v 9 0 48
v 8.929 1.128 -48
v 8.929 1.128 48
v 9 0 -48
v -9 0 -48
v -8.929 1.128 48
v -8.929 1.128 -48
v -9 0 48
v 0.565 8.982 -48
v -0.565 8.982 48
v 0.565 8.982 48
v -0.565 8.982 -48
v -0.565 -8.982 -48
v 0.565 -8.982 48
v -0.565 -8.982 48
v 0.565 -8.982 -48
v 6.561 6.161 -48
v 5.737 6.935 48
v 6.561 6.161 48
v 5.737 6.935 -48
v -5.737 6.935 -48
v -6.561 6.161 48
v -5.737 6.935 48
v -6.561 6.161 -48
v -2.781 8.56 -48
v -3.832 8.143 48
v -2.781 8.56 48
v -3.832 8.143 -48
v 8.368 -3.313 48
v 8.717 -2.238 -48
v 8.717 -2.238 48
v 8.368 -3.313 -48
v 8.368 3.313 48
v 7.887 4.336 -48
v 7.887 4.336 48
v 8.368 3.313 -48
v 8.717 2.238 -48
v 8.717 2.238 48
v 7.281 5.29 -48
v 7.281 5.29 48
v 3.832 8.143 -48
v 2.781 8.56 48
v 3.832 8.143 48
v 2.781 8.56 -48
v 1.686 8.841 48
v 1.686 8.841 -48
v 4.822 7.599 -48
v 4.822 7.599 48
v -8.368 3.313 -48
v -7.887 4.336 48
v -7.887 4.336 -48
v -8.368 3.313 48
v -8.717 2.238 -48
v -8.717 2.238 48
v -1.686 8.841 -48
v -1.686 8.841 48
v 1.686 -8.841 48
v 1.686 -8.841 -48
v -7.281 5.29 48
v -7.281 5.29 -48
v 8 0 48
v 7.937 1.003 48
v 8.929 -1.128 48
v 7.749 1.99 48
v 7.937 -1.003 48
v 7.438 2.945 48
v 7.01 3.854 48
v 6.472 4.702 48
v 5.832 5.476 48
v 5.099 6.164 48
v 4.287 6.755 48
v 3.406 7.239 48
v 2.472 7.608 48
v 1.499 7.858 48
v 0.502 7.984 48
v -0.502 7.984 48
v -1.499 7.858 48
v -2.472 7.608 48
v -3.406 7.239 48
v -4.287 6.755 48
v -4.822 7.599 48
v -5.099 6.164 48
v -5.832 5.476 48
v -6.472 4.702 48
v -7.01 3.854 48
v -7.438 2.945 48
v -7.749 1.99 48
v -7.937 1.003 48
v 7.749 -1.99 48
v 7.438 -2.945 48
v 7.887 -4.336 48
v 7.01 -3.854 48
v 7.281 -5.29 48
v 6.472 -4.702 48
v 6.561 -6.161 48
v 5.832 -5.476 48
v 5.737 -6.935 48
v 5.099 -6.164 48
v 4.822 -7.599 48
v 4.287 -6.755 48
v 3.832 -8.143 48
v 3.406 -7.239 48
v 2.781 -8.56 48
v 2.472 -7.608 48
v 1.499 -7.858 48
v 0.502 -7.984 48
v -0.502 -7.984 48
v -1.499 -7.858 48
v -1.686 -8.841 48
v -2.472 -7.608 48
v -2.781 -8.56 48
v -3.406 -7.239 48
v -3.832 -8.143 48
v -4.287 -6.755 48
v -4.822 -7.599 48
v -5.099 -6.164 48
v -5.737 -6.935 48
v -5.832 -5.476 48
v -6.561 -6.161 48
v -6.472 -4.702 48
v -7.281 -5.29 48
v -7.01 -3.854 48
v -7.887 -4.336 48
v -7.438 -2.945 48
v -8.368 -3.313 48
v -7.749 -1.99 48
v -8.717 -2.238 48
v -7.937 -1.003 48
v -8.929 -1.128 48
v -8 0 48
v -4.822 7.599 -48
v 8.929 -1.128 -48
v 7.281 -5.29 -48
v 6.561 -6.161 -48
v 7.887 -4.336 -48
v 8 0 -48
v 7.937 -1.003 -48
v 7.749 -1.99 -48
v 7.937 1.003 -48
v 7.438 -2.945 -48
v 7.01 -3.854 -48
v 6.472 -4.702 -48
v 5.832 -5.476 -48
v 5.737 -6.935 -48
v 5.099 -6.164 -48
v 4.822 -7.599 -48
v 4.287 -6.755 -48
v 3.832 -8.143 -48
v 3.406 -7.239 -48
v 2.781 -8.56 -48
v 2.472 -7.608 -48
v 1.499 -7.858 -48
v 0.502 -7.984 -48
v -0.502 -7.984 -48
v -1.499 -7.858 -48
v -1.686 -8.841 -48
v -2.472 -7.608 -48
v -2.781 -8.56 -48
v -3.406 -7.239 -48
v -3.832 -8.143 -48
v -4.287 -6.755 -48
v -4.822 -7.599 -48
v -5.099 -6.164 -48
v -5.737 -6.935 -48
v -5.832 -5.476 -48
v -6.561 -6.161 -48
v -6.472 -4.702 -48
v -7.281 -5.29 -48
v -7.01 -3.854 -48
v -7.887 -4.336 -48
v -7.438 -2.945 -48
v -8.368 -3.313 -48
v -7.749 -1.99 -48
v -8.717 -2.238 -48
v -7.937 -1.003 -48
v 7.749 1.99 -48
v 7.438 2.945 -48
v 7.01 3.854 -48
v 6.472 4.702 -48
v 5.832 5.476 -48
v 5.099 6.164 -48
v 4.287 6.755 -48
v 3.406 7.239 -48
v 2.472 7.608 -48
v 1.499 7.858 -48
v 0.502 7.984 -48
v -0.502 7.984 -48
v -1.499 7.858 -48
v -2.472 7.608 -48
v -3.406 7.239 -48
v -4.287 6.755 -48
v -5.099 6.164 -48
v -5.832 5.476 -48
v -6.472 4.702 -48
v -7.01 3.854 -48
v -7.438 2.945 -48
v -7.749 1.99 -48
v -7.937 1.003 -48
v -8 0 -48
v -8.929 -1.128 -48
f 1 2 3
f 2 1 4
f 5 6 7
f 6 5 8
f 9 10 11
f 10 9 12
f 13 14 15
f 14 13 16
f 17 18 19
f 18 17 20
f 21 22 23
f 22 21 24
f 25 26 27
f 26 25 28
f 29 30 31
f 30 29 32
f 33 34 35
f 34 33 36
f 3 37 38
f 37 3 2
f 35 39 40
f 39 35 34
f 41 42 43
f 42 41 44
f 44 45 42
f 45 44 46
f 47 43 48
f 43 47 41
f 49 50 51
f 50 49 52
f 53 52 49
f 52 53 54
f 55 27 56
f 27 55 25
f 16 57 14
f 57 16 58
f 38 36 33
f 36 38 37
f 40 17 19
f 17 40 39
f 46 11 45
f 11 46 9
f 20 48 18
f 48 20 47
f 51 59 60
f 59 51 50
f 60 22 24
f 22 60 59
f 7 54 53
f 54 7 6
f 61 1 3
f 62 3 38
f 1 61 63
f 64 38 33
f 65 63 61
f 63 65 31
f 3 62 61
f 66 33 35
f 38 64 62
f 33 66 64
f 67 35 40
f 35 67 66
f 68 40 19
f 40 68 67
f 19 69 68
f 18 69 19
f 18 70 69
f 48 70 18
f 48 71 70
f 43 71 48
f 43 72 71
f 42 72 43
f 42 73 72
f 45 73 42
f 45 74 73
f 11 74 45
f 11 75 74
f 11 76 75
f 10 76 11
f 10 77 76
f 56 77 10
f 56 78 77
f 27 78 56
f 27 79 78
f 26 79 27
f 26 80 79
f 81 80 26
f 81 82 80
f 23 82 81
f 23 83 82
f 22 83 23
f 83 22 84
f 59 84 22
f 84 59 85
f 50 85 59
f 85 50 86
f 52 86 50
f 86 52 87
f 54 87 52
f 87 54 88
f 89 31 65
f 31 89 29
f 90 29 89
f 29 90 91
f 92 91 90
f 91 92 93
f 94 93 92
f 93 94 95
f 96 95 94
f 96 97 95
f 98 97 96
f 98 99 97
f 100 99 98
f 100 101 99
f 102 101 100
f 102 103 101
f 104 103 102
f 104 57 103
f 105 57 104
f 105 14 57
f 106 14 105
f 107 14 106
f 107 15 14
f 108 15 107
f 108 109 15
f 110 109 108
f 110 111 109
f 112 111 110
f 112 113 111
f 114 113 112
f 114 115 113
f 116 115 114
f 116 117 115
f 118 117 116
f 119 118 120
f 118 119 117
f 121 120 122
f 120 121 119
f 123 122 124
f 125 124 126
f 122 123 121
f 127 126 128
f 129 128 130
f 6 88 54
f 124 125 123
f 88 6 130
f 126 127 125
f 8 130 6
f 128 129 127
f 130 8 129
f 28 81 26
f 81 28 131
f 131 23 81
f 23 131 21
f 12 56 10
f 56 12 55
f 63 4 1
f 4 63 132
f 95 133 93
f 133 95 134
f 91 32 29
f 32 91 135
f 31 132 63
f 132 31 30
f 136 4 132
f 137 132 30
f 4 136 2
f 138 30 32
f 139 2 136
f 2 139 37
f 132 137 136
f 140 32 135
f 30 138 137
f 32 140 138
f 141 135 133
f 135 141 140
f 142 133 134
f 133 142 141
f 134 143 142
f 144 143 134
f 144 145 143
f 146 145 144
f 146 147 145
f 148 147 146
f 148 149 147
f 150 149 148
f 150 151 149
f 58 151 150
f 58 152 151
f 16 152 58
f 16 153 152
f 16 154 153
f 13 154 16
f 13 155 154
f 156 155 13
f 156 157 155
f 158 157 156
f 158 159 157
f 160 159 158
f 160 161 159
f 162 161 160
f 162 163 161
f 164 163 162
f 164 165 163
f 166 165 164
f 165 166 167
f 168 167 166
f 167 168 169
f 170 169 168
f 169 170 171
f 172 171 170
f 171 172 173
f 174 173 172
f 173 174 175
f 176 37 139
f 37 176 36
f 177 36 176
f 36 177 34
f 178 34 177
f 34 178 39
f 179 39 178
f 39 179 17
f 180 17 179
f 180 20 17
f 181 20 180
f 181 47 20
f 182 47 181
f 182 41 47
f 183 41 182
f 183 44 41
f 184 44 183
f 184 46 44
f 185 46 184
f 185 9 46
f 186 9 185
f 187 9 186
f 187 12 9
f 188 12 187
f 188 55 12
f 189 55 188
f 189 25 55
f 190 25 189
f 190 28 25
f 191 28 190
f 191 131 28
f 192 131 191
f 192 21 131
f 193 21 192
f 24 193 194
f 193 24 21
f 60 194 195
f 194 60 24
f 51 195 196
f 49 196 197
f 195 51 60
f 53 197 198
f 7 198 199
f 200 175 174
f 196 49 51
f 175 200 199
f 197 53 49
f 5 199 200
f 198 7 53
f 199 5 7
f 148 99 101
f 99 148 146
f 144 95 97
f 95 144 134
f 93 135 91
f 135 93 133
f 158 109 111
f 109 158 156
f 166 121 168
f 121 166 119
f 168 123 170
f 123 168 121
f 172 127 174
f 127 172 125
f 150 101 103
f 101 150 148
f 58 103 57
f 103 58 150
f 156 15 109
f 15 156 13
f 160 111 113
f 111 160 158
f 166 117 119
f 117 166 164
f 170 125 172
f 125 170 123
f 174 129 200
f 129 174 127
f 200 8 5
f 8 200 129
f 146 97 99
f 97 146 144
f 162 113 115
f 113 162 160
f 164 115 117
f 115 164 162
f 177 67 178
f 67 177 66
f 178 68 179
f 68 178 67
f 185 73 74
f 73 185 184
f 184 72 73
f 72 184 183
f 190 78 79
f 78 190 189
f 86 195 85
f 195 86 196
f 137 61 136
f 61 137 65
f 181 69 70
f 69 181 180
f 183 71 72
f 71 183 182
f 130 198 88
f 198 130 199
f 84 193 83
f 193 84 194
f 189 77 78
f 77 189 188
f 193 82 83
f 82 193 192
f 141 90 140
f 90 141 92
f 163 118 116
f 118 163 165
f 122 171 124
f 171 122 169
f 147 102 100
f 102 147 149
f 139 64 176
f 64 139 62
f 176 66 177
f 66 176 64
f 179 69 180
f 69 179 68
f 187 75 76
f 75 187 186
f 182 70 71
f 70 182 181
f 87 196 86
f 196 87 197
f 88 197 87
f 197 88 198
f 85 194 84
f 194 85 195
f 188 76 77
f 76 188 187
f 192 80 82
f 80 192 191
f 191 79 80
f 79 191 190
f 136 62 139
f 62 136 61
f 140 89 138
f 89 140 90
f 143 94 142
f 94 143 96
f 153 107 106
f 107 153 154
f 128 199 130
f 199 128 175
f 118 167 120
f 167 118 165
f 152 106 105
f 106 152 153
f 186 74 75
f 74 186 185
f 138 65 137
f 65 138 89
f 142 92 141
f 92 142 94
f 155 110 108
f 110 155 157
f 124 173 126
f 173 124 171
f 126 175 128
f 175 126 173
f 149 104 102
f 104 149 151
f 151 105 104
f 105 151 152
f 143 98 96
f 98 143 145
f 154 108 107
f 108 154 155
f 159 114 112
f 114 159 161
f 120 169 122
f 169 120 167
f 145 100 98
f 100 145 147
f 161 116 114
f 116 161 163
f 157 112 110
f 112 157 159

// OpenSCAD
$fn = 50;


difference() {
	union() {
		translate(v = [0, 0, -48.0000000000]) {
			cylinder(h = 96, r = 9.0000000000);
		}
	}
	union() {
		translate(v = [0, 0, -100.0000000000]) {
			cylinder(h = 200, r = 8);
		}
	}
}
